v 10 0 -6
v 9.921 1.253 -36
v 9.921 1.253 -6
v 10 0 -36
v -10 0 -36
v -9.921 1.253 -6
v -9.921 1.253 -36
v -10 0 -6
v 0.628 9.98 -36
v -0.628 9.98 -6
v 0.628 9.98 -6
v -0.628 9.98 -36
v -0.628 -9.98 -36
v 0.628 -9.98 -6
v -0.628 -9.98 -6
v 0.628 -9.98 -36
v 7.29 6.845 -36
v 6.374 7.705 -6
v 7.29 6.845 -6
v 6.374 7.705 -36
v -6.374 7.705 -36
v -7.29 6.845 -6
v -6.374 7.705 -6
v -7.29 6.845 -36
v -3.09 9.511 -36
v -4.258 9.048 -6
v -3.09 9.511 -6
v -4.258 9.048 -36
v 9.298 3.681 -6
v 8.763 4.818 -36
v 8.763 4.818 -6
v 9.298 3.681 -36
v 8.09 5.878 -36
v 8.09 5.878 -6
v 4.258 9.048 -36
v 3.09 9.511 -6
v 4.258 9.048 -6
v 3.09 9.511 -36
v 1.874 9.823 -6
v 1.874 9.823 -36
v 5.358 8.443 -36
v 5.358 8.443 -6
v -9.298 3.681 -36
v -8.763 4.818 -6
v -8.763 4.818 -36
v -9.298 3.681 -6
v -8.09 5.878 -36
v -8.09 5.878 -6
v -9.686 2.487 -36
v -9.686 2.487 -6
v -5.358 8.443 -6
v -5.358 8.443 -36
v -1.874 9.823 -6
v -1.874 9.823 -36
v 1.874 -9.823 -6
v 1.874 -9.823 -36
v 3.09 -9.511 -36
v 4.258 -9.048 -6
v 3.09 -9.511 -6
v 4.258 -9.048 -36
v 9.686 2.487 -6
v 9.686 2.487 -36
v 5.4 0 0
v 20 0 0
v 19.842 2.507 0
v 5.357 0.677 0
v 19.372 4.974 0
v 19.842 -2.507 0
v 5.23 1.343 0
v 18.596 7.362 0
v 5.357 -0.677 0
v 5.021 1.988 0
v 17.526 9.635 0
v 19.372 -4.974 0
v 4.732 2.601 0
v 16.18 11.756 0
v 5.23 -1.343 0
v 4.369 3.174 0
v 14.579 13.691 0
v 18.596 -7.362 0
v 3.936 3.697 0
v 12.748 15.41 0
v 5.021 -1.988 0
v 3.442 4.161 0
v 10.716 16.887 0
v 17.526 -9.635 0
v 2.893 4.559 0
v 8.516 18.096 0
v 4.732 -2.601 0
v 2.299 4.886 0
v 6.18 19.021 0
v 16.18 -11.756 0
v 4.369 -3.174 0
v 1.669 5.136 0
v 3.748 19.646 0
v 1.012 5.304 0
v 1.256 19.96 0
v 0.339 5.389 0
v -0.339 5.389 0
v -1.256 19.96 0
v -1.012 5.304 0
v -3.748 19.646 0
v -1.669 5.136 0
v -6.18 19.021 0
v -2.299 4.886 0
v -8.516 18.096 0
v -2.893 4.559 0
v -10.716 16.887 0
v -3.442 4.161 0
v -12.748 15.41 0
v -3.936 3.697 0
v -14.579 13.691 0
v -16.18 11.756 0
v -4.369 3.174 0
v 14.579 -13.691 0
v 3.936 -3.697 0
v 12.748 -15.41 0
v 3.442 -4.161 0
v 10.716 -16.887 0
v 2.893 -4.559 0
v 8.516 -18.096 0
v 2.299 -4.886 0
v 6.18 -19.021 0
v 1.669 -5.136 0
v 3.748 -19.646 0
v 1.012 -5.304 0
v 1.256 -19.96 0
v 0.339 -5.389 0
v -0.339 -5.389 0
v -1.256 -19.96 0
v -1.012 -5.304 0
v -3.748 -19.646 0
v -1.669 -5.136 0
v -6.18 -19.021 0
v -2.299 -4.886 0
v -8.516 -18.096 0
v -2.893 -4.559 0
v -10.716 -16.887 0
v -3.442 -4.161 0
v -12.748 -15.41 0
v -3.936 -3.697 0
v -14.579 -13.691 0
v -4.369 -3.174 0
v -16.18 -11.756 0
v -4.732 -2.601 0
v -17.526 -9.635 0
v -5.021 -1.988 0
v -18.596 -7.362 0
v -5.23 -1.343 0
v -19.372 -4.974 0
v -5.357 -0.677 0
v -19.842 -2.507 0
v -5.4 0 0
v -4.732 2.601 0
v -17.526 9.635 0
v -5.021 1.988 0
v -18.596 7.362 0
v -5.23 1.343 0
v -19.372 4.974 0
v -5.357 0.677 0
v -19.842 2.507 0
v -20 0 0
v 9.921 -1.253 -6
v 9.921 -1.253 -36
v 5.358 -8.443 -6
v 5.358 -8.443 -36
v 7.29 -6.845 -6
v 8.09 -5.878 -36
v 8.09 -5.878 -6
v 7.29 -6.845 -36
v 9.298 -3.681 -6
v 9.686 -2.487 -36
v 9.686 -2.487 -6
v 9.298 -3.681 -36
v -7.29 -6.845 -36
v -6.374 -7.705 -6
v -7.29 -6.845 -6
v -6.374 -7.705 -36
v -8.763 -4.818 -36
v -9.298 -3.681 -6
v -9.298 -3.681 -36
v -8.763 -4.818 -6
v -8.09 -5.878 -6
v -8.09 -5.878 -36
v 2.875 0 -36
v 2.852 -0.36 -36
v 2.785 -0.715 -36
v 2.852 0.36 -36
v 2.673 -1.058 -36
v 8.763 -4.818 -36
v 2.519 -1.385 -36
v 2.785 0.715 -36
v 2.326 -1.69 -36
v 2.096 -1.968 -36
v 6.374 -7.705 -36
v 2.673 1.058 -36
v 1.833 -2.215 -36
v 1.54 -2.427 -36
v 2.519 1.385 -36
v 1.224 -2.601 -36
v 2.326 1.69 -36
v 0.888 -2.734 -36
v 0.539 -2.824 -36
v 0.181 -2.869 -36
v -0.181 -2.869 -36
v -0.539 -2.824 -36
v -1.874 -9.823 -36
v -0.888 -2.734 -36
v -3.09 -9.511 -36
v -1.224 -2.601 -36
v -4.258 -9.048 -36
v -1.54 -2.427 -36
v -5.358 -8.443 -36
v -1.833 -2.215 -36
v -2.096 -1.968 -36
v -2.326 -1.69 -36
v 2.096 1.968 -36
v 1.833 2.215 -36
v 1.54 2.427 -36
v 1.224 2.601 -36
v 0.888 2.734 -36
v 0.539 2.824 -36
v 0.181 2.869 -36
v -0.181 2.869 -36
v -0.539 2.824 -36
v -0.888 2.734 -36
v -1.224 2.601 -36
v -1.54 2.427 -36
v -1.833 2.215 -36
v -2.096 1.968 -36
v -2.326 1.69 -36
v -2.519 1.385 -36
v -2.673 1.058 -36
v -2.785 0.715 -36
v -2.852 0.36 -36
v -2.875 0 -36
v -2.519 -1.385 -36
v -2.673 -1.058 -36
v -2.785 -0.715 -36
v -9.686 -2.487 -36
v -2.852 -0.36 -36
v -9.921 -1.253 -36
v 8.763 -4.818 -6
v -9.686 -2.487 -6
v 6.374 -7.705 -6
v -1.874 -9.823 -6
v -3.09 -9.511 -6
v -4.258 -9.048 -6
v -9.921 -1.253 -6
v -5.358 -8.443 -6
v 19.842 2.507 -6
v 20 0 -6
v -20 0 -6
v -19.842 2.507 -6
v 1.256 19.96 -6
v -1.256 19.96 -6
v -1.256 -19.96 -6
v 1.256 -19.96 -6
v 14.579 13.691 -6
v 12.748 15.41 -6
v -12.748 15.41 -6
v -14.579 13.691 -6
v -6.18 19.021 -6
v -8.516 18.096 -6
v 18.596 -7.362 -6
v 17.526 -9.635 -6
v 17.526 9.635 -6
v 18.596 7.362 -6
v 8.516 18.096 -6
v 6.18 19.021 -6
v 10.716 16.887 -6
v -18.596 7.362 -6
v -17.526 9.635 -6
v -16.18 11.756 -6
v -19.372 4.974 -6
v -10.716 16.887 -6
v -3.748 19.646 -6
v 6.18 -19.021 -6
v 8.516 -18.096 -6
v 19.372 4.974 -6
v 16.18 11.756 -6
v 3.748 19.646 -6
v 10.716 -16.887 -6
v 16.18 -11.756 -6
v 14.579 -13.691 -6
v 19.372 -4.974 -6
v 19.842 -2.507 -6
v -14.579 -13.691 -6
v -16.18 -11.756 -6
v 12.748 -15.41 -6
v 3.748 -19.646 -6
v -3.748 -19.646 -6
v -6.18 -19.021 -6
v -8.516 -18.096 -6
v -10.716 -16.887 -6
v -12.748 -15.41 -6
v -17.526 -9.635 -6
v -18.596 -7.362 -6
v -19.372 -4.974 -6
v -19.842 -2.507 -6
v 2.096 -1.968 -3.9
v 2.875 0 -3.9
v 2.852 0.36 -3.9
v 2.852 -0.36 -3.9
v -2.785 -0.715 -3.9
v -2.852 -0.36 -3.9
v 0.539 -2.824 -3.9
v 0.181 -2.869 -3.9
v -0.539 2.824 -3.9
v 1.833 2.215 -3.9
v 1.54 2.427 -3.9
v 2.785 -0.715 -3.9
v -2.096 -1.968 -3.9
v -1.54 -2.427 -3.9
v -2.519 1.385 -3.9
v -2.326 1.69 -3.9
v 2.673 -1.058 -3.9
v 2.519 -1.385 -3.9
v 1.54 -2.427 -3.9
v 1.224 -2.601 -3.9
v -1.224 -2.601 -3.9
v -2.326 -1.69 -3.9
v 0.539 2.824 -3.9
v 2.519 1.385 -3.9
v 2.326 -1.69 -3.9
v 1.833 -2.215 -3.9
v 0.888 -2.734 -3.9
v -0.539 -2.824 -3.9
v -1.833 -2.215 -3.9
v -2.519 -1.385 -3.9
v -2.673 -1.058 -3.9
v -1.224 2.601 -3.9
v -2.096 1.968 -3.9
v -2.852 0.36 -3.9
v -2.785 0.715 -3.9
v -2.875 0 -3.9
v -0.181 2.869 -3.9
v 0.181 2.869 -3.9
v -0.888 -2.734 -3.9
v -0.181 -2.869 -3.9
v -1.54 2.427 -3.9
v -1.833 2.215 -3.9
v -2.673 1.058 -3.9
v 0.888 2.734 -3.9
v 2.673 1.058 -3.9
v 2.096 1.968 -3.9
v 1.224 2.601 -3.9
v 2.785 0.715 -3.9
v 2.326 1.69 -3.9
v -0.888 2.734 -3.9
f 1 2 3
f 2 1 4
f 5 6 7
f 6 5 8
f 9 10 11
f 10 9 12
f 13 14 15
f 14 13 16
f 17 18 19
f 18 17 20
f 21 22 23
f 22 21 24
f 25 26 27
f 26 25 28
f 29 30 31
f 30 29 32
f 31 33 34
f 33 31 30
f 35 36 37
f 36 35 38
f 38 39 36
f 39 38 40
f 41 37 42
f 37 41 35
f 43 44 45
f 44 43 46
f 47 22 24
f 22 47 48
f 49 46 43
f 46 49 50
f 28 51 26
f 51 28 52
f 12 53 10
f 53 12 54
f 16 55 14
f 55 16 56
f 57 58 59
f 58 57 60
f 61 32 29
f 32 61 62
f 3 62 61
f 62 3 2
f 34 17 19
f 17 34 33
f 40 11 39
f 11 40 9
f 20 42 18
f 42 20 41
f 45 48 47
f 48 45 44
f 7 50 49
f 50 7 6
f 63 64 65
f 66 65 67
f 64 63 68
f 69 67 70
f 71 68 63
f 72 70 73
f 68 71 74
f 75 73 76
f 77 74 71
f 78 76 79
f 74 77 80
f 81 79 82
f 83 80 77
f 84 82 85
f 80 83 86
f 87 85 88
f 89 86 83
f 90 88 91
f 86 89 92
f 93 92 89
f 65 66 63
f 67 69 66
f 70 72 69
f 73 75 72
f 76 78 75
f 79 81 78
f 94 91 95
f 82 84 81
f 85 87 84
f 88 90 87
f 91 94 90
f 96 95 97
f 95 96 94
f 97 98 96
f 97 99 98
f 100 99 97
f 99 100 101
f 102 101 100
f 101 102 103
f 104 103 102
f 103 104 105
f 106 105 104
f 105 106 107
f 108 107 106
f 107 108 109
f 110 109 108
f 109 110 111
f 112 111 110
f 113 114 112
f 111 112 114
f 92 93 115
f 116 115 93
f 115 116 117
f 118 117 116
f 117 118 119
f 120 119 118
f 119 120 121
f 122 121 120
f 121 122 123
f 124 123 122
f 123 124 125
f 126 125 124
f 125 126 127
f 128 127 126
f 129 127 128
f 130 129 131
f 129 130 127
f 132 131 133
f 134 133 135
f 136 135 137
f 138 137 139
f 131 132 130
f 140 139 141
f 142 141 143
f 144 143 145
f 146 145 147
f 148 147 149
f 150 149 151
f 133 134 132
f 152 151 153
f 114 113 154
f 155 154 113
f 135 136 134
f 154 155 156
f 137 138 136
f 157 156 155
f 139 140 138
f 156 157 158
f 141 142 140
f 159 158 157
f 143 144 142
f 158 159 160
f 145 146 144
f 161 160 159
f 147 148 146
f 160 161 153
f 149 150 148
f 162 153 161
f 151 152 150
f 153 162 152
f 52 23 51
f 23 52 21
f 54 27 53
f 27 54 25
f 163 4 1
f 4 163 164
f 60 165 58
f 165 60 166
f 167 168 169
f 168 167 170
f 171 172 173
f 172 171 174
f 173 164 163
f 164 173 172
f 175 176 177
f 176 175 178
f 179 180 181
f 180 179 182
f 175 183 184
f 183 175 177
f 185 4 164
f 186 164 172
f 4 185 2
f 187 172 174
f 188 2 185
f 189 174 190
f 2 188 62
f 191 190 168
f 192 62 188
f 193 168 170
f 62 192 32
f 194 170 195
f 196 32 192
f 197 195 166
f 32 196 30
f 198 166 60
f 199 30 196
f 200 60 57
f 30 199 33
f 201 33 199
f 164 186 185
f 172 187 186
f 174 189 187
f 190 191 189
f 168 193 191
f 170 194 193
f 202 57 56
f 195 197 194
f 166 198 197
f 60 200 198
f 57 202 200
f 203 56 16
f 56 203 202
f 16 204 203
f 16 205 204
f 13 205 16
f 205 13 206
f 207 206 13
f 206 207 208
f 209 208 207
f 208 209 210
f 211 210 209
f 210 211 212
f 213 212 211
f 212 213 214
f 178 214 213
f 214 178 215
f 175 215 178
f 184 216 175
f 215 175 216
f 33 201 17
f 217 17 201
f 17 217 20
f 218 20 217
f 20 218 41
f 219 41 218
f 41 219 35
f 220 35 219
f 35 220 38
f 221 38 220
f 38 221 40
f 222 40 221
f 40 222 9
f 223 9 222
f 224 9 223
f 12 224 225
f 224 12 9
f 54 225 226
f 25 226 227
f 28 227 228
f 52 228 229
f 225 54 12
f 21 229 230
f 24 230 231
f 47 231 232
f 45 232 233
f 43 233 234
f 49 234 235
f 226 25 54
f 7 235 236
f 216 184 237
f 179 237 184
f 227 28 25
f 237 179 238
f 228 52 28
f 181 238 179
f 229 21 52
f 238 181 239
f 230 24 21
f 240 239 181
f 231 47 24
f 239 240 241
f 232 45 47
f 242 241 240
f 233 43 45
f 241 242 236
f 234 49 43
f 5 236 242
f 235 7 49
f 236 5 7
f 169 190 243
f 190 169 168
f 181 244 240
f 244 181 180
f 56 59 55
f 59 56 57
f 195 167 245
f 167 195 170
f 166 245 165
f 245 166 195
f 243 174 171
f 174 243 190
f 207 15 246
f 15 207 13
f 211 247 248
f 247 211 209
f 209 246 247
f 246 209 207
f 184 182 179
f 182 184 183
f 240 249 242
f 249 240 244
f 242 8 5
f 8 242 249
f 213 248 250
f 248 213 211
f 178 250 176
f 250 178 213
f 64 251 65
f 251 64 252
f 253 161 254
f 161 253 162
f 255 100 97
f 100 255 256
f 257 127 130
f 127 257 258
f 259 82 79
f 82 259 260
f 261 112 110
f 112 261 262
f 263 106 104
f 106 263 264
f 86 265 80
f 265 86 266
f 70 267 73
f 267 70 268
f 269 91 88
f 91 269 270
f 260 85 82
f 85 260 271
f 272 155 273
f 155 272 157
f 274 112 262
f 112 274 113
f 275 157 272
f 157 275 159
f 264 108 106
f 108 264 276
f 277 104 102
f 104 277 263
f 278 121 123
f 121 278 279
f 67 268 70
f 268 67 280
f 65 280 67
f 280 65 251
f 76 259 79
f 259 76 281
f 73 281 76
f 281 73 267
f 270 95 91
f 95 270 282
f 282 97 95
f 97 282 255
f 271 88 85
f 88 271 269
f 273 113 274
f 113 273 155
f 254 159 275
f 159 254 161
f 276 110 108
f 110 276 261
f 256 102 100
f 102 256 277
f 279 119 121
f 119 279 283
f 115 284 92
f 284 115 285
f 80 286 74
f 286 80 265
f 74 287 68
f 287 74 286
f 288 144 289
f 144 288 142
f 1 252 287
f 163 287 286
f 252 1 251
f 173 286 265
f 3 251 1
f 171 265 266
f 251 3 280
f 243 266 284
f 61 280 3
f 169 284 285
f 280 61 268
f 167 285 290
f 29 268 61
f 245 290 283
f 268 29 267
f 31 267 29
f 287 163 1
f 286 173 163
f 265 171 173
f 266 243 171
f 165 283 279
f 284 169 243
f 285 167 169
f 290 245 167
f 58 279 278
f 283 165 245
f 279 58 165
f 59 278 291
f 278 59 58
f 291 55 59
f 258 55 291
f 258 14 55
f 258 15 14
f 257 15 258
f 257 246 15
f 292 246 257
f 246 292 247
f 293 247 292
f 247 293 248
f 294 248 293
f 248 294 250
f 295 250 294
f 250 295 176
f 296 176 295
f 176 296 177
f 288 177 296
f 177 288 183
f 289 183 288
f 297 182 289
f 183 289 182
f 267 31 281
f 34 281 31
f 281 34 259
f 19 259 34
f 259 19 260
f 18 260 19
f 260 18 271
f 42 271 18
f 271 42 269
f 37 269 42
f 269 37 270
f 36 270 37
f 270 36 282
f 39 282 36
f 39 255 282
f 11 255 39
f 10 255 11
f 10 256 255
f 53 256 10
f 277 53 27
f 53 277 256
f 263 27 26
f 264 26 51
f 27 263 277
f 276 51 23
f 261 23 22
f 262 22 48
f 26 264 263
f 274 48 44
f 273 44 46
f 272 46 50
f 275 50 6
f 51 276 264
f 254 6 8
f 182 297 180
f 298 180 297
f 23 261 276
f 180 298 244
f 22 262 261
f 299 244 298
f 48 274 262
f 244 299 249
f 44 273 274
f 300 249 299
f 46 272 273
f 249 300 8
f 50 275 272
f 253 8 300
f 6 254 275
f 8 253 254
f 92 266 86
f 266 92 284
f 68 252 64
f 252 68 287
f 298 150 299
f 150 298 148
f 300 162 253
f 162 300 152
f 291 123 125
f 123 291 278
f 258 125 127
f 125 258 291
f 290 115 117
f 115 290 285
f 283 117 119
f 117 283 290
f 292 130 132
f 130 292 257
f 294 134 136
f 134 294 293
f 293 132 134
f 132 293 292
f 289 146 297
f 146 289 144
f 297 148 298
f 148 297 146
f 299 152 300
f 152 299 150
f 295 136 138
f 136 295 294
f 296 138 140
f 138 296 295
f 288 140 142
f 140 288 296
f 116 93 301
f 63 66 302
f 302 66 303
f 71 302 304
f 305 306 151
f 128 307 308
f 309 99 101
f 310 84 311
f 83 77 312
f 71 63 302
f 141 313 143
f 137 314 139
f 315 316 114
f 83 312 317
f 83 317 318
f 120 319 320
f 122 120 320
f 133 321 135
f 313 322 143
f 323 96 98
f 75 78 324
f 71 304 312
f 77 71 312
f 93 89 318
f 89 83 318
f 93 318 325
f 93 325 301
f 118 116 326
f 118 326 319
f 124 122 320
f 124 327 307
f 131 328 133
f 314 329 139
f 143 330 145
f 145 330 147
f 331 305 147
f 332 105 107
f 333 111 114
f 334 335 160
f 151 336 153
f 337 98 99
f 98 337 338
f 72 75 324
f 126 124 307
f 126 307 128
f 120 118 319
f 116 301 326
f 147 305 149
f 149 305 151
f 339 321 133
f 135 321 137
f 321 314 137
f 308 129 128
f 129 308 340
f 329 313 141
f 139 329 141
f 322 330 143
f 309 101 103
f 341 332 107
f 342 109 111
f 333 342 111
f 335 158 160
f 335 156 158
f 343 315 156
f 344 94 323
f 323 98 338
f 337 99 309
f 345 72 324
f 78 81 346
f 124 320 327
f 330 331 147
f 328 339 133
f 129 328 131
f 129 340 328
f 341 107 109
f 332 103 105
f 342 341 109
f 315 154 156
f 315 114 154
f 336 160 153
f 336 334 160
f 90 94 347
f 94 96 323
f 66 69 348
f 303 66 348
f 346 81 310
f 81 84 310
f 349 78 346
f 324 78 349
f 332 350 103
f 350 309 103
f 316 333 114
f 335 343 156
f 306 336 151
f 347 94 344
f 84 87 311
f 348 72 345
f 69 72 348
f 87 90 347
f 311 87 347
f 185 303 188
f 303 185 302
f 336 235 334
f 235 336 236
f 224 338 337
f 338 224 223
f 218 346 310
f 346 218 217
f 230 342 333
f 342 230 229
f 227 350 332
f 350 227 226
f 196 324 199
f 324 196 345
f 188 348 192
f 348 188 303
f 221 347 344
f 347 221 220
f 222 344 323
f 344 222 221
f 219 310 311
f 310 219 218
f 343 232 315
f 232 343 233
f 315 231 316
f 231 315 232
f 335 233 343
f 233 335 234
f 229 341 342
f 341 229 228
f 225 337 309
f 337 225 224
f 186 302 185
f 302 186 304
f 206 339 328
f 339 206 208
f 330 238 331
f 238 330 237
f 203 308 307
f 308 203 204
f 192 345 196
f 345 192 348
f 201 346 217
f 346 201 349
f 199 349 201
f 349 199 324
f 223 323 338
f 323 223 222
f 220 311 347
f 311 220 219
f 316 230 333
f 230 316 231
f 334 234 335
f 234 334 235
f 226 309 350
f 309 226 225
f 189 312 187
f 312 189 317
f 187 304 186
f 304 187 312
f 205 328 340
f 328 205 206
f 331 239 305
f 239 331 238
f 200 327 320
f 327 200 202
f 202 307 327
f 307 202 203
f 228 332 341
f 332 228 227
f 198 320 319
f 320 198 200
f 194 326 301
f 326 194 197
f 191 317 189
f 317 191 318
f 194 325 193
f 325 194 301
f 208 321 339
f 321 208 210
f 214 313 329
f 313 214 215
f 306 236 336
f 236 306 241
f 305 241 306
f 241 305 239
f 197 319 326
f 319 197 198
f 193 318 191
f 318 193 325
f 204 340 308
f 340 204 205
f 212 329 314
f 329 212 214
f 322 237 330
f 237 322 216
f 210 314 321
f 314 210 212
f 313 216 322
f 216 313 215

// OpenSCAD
$fn = 50;


difference() {
	union() {
		translate(v = [0, 0, -36.0000000000]) {
			cylinder(h = 36, r = 10.0000000000);
		}
		translate(v = [0, 0, -6.0000000000]) {
			cylinder(h = 6, r = 20.0000000000);
		}
	}
	union() {
		translate(v = [0, 0, 0]) {
			rotate(a = [0, 0, 0]) {
				difference() {
					union() {
						#translate(v = [0, 0, -36.0000000000]) {
							cylinder(h = 36, r = 2.6000000000);
						}
						#translate(v = [0, 0, -3.9000000000]) {
							cylinder(h = 3.9000000000, r1 = 2.8750000000, r2 = 5.4000000000);
						}
						#translate(v = [0, 0, -36.0000000000]) {
							cylinder(h = 36, r = 2.8750000000);
						}
						#translate(v = [0, 0, -36.0000000000]) {
							cylinder(h = 36, r = 2.6000000000);
						}
					}
					union();
				}
			}
		}
	}
}
